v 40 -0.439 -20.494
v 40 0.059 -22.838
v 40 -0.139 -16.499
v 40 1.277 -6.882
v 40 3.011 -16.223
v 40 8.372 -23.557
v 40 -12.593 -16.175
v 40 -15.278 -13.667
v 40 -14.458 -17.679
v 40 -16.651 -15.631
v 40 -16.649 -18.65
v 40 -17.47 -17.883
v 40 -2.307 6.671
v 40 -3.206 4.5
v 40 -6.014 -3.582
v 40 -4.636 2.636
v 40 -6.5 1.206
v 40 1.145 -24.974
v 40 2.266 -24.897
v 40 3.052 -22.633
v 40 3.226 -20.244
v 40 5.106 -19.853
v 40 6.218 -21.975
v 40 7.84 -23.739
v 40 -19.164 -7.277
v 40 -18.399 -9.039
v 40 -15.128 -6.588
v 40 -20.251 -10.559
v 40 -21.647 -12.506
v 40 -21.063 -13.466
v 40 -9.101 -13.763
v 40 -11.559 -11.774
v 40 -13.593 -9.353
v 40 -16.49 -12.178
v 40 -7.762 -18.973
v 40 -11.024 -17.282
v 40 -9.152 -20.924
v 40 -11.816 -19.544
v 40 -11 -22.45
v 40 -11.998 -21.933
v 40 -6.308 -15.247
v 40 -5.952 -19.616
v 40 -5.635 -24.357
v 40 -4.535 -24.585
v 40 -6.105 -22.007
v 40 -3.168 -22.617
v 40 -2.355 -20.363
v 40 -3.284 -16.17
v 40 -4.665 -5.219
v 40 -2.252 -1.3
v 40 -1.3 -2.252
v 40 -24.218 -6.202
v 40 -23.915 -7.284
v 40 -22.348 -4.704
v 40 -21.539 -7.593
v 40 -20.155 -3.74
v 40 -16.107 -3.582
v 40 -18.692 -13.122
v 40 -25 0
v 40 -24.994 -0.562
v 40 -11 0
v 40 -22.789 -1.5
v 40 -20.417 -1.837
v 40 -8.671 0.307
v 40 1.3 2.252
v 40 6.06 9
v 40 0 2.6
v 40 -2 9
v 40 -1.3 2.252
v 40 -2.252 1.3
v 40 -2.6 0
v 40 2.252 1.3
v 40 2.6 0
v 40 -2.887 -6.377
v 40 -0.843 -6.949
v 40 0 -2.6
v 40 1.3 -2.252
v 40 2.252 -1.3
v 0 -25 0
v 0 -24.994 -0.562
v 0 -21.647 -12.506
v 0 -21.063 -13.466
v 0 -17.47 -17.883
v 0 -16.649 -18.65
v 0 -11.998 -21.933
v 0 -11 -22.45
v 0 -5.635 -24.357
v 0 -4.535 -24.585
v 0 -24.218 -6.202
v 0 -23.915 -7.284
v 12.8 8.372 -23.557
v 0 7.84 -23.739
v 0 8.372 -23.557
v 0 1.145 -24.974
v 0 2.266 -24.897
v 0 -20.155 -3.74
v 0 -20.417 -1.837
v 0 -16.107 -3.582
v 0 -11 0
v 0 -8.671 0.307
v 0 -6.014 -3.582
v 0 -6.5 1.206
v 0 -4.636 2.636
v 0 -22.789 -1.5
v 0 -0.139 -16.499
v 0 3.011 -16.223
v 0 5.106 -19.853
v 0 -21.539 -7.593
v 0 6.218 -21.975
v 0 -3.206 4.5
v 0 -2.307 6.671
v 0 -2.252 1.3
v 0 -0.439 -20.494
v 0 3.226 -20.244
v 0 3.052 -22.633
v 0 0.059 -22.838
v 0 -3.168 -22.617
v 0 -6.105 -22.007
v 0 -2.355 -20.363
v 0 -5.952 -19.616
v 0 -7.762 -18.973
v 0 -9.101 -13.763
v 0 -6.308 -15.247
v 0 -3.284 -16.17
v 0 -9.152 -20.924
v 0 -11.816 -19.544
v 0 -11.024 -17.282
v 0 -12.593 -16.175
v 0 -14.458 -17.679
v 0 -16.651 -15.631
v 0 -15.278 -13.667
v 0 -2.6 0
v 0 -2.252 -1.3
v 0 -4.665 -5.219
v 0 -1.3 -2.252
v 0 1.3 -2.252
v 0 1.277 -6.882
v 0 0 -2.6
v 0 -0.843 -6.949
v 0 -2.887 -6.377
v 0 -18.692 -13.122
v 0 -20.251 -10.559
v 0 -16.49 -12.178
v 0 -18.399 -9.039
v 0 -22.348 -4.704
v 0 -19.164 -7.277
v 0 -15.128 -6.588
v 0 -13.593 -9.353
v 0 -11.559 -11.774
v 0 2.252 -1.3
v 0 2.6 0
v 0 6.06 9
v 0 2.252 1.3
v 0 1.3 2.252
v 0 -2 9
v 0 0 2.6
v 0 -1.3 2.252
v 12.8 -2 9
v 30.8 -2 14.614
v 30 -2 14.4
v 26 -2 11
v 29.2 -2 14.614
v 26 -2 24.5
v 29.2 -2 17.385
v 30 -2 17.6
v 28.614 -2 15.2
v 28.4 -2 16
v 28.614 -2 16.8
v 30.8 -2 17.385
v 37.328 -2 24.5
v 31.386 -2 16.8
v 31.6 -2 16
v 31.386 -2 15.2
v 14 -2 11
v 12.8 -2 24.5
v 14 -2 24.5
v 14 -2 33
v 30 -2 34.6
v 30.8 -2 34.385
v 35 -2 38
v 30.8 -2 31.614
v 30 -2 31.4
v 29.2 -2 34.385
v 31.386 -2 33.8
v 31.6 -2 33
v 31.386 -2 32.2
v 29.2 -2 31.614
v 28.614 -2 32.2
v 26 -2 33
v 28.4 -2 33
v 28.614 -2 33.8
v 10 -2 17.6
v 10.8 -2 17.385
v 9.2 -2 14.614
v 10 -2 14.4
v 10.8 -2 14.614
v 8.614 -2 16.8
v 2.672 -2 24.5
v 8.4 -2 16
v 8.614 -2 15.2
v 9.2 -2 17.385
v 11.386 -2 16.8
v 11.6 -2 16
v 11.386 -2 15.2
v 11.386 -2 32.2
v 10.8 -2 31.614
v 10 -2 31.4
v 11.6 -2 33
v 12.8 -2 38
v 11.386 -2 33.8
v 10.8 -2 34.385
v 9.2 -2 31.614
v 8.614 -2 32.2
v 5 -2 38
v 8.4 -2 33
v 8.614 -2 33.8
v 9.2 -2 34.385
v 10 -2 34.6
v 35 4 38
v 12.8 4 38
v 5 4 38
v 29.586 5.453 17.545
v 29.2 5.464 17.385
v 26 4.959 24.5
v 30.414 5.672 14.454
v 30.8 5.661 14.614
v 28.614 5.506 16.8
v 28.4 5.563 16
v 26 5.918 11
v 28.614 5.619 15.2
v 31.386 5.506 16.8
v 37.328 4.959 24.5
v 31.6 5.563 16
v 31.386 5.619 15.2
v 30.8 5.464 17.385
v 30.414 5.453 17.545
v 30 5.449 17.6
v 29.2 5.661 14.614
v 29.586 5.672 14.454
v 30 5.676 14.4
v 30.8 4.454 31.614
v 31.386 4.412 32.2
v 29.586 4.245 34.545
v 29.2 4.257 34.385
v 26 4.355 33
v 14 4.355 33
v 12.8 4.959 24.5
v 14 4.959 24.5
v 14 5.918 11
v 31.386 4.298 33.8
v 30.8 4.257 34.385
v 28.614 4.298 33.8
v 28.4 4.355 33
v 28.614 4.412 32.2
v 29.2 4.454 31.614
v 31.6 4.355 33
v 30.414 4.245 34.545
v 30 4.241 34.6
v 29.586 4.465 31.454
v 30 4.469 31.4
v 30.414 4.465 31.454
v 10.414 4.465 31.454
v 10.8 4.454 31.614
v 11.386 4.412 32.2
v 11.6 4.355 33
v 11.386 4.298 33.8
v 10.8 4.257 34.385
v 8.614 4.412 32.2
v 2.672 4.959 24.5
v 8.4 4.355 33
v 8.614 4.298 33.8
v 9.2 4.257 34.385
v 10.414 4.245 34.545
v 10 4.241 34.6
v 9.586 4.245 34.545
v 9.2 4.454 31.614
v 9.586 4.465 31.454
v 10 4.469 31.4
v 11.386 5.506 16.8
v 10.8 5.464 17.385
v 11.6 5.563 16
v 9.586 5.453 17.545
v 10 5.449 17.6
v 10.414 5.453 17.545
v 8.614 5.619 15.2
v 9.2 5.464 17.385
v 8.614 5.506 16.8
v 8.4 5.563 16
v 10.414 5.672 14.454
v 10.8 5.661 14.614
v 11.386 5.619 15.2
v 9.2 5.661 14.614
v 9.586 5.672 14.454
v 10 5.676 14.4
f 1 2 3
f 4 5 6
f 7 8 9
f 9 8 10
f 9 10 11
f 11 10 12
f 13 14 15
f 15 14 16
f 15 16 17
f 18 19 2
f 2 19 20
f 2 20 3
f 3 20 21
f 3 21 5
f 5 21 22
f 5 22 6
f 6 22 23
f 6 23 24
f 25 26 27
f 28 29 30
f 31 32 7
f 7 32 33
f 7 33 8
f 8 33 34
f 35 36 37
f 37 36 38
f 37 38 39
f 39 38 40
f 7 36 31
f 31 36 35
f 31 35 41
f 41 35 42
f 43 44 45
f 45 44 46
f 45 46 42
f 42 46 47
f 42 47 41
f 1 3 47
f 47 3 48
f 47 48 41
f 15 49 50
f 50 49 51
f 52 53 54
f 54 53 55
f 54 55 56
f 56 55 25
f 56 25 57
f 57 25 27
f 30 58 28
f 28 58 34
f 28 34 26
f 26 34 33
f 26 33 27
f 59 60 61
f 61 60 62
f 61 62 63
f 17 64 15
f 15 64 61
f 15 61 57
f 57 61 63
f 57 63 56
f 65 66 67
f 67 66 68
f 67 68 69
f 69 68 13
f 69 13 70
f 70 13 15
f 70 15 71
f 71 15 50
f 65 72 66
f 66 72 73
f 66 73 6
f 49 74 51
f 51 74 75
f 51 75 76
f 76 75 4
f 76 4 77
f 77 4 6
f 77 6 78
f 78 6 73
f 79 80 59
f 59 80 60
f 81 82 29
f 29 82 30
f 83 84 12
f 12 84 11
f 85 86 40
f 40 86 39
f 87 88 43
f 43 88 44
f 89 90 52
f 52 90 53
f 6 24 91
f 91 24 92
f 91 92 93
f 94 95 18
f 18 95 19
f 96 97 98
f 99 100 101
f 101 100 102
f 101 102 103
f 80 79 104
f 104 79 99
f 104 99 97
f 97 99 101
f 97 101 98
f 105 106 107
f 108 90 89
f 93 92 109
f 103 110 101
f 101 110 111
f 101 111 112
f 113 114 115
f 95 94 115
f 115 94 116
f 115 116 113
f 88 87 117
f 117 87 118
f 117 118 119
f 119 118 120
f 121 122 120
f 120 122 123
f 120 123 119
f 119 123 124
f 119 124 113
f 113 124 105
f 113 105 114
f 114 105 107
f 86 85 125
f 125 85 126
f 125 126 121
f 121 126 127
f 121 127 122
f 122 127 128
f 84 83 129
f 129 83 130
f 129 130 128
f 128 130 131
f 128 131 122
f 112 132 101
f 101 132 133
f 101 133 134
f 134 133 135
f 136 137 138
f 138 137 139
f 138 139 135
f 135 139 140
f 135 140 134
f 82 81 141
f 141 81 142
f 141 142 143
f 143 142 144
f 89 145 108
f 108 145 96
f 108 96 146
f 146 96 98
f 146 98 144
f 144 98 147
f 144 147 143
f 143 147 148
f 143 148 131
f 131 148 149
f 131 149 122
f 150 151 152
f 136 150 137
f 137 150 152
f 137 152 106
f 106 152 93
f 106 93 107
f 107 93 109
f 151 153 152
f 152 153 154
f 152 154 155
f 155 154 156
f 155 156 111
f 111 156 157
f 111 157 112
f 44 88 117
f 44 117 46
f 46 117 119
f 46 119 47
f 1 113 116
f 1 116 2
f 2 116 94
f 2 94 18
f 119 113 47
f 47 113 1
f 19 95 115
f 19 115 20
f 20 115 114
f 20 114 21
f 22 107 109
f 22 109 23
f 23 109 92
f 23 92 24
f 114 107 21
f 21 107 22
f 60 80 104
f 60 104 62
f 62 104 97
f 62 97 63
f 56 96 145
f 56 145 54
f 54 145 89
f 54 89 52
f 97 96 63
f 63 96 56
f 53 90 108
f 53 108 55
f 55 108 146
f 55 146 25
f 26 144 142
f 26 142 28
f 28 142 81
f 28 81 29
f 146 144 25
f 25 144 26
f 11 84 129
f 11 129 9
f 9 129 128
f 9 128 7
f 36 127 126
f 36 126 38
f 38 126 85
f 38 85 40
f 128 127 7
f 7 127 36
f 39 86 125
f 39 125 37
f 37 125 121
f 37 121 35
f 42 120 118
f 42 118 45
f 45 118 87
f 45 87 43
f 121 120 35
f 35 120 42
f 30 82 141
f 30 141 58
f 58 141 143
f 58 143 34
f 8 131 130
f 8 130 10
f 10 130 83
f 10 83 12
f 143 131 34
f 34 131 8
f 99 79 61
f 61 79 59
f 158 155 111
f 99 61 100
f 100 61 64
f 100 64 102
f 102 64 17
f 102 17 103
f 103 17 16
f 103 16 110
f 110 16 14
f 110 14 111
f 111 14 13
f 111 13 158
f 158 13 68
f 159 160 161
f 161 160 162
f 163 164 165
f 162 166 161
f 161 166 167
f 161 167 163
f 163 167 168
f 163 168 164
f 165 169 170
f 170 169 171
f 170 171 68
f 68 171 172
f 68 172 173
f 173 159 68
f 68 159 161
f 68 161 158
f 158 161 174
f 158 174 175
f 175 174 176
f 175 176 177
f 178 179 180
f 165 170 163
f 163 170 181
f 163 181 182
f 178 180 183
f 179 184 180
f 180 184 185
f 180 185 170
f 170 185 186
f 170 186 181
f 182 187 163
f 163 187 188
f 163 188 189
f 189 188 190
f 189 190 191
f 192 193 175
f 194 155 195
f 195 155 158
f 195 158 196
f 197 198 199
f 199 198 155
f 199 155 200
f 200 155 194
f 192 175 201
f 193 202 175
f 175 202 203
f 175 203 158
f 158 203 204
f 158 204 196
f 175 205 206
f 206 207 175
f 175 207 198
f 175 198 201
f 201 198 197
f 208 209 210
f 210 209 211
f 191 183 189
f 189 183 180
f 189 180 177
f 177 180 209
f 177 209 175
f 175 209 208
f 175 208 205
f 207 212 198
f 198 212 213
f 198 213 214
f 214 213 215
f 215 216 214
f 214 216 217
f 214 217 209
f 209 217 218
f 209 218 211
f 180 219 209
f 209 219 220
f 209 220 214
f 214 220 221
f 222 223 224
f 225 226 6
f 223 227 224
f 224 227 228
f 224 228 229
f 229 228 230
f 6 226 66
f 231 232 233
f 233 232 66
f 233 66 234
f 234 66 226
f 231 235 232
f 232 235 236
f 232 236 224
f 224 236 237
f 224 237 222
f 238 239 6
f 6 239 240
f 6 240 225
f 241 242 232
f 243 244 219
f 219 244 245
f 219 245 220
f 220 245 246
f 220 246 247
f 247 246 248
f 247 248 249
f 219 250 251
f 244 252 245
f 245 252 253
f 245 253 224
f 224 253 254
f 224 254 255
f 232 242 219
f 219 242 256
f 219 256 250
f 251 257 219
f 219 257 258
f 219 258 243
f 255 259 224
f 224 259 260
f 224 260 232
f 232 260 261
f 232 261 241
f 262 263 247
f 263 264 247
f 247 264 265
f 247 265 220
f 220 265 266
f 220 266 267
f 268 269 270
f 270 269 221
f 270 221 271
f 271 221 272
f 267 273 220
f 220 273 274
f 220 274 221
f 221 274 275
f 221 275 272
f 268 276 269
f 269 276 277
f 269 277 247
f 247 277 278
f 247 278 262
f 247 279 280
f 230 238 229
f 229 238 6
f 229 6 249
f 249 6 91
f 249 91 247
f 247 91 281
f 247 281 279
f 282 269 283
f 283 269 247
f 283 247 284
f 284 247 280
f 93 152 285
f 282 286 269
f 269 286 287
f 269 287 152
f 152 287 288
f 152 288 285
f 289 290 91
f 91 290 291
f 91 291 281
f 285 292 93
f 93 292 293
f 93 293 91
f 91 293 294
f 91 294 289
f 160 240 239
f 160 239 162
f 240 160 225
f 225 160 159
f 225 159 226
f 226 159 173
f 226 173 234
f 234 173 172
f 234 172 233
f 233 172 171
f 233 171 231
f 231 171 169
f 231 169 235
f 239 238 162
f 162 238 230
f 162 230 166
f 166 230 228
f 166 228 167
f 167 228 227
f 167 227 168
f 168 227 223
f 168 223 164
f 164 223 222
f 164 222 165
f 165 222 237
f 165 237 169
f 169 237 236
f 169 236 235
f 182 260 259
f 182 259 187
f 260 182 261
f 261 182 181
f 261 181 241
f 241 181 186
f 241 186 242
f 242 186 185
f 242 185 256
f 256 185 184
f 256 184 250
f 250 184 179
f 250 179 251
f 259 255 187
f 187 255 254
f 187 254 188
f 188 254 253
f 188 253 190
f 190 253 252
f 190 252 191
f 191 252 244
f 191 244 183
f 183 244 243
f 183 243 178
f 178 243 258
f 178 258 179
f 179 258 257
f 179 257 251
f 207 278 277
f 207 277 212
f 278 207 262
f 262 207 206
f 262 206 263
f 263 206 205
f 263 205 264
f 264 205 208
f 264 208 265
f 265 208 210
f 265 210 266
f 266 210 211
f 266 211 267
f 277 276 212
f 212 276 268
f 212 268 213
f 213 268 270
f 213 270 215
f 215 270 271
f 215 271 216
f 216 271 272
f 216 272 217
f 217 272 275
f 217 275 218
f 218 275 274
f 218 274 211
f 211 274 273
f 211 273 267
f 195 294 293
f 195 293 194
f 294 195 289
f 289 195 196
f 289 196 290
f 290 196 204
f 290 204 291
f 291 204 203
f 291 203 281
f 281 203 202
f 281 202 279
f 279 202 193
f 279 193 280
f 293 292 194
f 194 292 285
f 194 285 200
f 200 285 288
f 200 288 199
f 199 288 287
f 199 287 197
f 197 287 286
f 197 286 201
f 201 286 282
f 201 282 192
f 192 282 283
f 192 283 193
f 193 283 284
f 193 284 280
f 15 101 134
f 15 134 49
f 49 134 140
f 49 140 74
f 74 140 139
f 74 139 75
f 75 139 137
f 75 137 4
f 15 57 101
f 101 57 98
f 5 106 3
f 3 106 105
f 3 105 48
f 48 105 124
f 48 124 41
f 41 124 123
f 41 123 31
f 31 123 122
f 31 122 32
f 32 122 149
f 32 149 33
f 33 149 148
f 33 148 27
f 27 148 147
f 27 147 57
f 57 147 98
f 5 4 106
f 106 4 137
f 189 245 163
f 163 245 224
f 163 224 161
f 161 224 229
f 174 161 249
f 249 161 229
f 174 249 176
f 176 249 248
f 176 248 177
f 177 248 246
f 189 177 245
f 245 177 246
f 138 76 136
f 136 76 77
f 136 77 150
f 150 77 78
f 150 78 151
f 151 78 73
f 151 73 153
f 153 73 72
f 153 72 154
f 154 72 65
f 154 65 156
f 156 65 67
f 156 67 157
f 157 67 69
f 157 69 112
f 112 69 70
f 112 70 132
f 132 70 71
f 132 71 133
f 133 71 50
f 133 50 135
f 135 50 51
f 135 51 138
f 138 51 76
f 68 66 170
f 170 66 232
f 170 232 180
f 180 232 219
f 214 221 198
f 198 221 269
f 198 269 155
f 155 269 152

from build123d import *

# Parameters (mm, degrees)
BASPROSKE_W         = 40
BASPROSKE_H         = 25
TOOTHCUT_DEPTH      = 54.38539126
TEETHCUTS_COUNT     = 23
TEETHCUTS_ANGLE     = 344.347826087
BORSKE_R            = 0.4
BORE_DEPTH          = 50.0000508
CUT_EXTRUDE_1_DEPTH = 54.3731118
SKETCH_2_R          = 1.6
CUT_EXTRUDE_2_DEPTH = 54.3731118
EXTRUDE_1_DEPTH     = 40
SKETCH_5_R          = 1.6
CUT_EXTRUDE_3_DEPTH = 61.166132826
CUT_EXTRUDE_4_DEPTH = 61.571969914
SKETCH_7_W          = 12
SKETCH_7_H          = 22
CUT_EXTRUDE_5_DEPTH = 61.166132826
SKETCH_8_R          = 2.6
CUT_EXTRUDE_6_DEPTH = 61.571969914
SKETCH_10_R         = 1.6
SKETCH_10_W         = 12
SKETCH_10_H         = 22
CUT_EXTRUDE_7_DEPTH = 61.166132826
CUT_EXTRUDE_9_DEPTH = 60.774271549


with BuildPart() as part:
    # BasProSke → Base-Revolve (revolve)
    with BuildSketch(Plane(origin=(0, 0, 0), x_dir=(1, 0, 0), z_dir=(0, 1, 0)), mode=Mode.PRIVATE) as base_revolve_sk:
        with Locations((20, 12.5)):
            Rectangle(BASPROSKE_W, BASPROSKE_H)
    revolve(base_revolve_sk.sketch.rotate(Axis((-10, 0, 0), (1, 0, 0)), 180), axis=Axis((-10, 0, 0), (1, 0, 0)))

    # TooCutSke → ToothCut (cut, through all)
    with BuildSketch(Plane(origin=(0, 0, 0), x_dir=(0, 0, -1), z_dir=(1, 0, 0))):
        with BuildLine():
            ThreePointArc((0.960248578, 20.47649686), (0, 20.499), (-0.960248578, 20.47649686))
            ThreePointArc((-0.960248578, 20.47649686), (-1.62297083, 22.794554384), (-2.865164893, 24.860842208))
            ThreePointArc((-2.865164893, 24.860842208), (0, 25.0254), (2.865164893, 24.860842208))
            ThreePointArc((2.865164893, 24.860842208), (1.62297083, 22.794554384), (0.960248578, 20.47649686))
        make_face()
    toothcut = extrude(amount=TOOTHCUT_DEPTH, mode=Mode.SUBTRACT)

    # TeethCuts: ToothCut ×23 about axis
    teethcuts_axis = Axis((-10, 0, 0), (1, 0, 0))
    for i in range(1, TEETHCUTS_COUNT):
        add(toothcut.rotate(teethcuts_axis, i * TEETHCUTS_ANGLE / (TEETHCUTS_COUNT - 1)), mode=Mode.SUBTRACT)

    # BorSke → Bore (cut, symmetric)
    with BuildSketch(Plane(origin=(0, 0, 0), x_dir=(0, 0, -1), z_dir=(1, 0, 0))):
        with Locations(Location((0, 0, 0), (0, 0, 180))):
            Circle(BORSKE_R)
    extrude(amount=BORE_DEPTH, both=True, mode=Mode.SUBTRACT)

    # 草图1 → 切除-拉伸1 (cut, through all)
    with BuildSketch(Plane(origin=(40, 0, 0), x_dir=(0, 0, -1), z_dir=(1, 0, 0))):
        Polygon((0, 0), (0, -25), (-13.134994366, -31.325673685), (-39.860156169, 4.307875386), (-10.07883231, 32.723680029), (33.144547114, 17.371523179), (23.556523053, 8.371990304), align=None)
    extrude(amount=-CUT_EXTRUDE_1_DEPTH, mode=Mode.SUBTRACT)

    # 草图2 → 切除-拉伸2 (cut, through all)
    with BuildSketch(Plane.ZY):
        Circle(SKETCH_2_R)
    extrude(amount=-CUT_EXTRUDE_2_DEPTH, mode=Mode.SUBTRACT)

    # 草图4 → 凸台-拉伸1 (add)
    with BuildSketch(Plane(origin=(40, 0, 0), x_dir=(0, 0, -1), z_dir=(1, 0, 0))):
        with BuildLine():
            Line((0, -4), (0, -11))
            ThreePointArc((0, -11), (-2.636038969, -4.636038969), (-9, -2))
            Line((-9, -2), (-37.99952025, -2))
            Line((-37.99952025, -2), (-37.99952025, 4))
            Line((-37.99952025, 4), (23.556523053, 8.371990304))
            Line((23.556523053, 8.371990304), (1.507617475, 0.535807379))
            ThreePointArc((1.507617475, 0.535807379), (-1.307151829, 0.922688515), (0, -1.6))
            Line((0, -1.6), (0, -4))
        make_face()
    extrude(amount=-EXTRUDE_1_DEPTH)

    # 草图5 → 切除-拉伸3 (cut, through all)
    with BuildSketch(Plane.XZ.offset(1)):
        with Locations(Location((30, 15.99952025, 0), (0, 0, 270))):
            Circle(SKETCH_5_R)
        with Locations(Location((30, 32.99952025, 0), (0, 0, 270))):
            Circle(SKETCH_5_R)
        with Locations(Location((10, 32.99952025, 0), (0, 0, 90))):
            Circle(SKETCH_5_R)
        with Locations(Location((10, 15.99952025, 0), (0, 0, 90))):
            Circle(SKETCH_5_R)
    extrude(amount=-CUT_EXTRUDE_3_DEPTH, mode=Mode.SUBTRACT)

    # 草图6 → 切除-拉伸4 (cut, through all)
    with BuildSketch(Plane.ZY):
        with BuildLine():
            Line((-6.882467579, 1.277356656), (-16.222959293, 3.010912119))
            ThreePointArc((-16.222959293, 3.010912119), (-13.76317845, -9.100819686), (-3.581631723, -16.106579842))
            Line((-3.581631723, -16.106579842), (-3.581631723, -6.014309121))
            ThreePointArc((-3.581631723, -6.014309121), (-6.377024463, -2.886790432), (-6.882467579, 1.277356656))
        make_face()
    extrude(amount=-CUT_EXTRUDE_4_DEPTH, mode=Mode.SUBTRACT)

    # 草图7 → 切除-拉伸5 (cut, through all)
    with BuildSketch(Plane.XZ.offset(1)):
        with Locations((20, 21.99952025)):
            Rectangle(SKETCH_7_W, SKETCH_7_H)
    extrude(amount=-CUT_EXTRUDE_5_DEPTH, mode=Mode.SUBTRACT)

    # 草图8 → 切除-拉伸6 (cut, through all)
    with BuildSketch(Plane(origin=(40, 0, 0), x_dir=(0, 0, -1), z_dir=(1, 0, 0))):
        Circle(SKETCH_8_R)
    extrude(amount=-CUT_EXTRUDE_6_DEPTH, mode=Mode.SUBTRACT)

    # 草图10 → 切除-拉伸7 (cut, through all)
    with BuildSketch(Plane(origin=(0, -1, 0), x_dir=(1, 0, 0), z_dir=(0, 1, 0))):
        with Locations(Location((10, -15.99952025, 0), (0, 0, 90))):
            Circle(SKETCH_10_R)
        with Locations(Location((10, -32.99952025, 0), (0, 0, 90))):
            Circle(SKETCH_10_R)
        with Locations(Location((30, -15.99952025, 0), (0, 0, 90))):
            Circle(SKETCH_10_R)
        with Locations(Location((30, -32.99952025, 0), (0, 0, 90))):
            Circle(SKETCH_10_R)
        with Locations((20, -21.99952025)):
            Rectangle(SKETCH_10_W, SKETCH_10_H)
    extrude(amount=-CUT_EXTRUDE_7_DEPTH, mode=Mode.SUBTRACT)

    # 草图12 → 切除-拉伸9 (cut, through all)
    with BuildSketch(Plane.XZ.offset(2)):
        Polygon((5, 37.99952025), (0, 9), (0, 37.99952025), align=None)
        Polygon((35, 37.99952025), (40, 9), (40, 37.99952025), align=None)
    extrude(amount=-CUT_EXTRUDE_9_DEPTH, mode=Mode.SUBTRACT)


solid = part.part
